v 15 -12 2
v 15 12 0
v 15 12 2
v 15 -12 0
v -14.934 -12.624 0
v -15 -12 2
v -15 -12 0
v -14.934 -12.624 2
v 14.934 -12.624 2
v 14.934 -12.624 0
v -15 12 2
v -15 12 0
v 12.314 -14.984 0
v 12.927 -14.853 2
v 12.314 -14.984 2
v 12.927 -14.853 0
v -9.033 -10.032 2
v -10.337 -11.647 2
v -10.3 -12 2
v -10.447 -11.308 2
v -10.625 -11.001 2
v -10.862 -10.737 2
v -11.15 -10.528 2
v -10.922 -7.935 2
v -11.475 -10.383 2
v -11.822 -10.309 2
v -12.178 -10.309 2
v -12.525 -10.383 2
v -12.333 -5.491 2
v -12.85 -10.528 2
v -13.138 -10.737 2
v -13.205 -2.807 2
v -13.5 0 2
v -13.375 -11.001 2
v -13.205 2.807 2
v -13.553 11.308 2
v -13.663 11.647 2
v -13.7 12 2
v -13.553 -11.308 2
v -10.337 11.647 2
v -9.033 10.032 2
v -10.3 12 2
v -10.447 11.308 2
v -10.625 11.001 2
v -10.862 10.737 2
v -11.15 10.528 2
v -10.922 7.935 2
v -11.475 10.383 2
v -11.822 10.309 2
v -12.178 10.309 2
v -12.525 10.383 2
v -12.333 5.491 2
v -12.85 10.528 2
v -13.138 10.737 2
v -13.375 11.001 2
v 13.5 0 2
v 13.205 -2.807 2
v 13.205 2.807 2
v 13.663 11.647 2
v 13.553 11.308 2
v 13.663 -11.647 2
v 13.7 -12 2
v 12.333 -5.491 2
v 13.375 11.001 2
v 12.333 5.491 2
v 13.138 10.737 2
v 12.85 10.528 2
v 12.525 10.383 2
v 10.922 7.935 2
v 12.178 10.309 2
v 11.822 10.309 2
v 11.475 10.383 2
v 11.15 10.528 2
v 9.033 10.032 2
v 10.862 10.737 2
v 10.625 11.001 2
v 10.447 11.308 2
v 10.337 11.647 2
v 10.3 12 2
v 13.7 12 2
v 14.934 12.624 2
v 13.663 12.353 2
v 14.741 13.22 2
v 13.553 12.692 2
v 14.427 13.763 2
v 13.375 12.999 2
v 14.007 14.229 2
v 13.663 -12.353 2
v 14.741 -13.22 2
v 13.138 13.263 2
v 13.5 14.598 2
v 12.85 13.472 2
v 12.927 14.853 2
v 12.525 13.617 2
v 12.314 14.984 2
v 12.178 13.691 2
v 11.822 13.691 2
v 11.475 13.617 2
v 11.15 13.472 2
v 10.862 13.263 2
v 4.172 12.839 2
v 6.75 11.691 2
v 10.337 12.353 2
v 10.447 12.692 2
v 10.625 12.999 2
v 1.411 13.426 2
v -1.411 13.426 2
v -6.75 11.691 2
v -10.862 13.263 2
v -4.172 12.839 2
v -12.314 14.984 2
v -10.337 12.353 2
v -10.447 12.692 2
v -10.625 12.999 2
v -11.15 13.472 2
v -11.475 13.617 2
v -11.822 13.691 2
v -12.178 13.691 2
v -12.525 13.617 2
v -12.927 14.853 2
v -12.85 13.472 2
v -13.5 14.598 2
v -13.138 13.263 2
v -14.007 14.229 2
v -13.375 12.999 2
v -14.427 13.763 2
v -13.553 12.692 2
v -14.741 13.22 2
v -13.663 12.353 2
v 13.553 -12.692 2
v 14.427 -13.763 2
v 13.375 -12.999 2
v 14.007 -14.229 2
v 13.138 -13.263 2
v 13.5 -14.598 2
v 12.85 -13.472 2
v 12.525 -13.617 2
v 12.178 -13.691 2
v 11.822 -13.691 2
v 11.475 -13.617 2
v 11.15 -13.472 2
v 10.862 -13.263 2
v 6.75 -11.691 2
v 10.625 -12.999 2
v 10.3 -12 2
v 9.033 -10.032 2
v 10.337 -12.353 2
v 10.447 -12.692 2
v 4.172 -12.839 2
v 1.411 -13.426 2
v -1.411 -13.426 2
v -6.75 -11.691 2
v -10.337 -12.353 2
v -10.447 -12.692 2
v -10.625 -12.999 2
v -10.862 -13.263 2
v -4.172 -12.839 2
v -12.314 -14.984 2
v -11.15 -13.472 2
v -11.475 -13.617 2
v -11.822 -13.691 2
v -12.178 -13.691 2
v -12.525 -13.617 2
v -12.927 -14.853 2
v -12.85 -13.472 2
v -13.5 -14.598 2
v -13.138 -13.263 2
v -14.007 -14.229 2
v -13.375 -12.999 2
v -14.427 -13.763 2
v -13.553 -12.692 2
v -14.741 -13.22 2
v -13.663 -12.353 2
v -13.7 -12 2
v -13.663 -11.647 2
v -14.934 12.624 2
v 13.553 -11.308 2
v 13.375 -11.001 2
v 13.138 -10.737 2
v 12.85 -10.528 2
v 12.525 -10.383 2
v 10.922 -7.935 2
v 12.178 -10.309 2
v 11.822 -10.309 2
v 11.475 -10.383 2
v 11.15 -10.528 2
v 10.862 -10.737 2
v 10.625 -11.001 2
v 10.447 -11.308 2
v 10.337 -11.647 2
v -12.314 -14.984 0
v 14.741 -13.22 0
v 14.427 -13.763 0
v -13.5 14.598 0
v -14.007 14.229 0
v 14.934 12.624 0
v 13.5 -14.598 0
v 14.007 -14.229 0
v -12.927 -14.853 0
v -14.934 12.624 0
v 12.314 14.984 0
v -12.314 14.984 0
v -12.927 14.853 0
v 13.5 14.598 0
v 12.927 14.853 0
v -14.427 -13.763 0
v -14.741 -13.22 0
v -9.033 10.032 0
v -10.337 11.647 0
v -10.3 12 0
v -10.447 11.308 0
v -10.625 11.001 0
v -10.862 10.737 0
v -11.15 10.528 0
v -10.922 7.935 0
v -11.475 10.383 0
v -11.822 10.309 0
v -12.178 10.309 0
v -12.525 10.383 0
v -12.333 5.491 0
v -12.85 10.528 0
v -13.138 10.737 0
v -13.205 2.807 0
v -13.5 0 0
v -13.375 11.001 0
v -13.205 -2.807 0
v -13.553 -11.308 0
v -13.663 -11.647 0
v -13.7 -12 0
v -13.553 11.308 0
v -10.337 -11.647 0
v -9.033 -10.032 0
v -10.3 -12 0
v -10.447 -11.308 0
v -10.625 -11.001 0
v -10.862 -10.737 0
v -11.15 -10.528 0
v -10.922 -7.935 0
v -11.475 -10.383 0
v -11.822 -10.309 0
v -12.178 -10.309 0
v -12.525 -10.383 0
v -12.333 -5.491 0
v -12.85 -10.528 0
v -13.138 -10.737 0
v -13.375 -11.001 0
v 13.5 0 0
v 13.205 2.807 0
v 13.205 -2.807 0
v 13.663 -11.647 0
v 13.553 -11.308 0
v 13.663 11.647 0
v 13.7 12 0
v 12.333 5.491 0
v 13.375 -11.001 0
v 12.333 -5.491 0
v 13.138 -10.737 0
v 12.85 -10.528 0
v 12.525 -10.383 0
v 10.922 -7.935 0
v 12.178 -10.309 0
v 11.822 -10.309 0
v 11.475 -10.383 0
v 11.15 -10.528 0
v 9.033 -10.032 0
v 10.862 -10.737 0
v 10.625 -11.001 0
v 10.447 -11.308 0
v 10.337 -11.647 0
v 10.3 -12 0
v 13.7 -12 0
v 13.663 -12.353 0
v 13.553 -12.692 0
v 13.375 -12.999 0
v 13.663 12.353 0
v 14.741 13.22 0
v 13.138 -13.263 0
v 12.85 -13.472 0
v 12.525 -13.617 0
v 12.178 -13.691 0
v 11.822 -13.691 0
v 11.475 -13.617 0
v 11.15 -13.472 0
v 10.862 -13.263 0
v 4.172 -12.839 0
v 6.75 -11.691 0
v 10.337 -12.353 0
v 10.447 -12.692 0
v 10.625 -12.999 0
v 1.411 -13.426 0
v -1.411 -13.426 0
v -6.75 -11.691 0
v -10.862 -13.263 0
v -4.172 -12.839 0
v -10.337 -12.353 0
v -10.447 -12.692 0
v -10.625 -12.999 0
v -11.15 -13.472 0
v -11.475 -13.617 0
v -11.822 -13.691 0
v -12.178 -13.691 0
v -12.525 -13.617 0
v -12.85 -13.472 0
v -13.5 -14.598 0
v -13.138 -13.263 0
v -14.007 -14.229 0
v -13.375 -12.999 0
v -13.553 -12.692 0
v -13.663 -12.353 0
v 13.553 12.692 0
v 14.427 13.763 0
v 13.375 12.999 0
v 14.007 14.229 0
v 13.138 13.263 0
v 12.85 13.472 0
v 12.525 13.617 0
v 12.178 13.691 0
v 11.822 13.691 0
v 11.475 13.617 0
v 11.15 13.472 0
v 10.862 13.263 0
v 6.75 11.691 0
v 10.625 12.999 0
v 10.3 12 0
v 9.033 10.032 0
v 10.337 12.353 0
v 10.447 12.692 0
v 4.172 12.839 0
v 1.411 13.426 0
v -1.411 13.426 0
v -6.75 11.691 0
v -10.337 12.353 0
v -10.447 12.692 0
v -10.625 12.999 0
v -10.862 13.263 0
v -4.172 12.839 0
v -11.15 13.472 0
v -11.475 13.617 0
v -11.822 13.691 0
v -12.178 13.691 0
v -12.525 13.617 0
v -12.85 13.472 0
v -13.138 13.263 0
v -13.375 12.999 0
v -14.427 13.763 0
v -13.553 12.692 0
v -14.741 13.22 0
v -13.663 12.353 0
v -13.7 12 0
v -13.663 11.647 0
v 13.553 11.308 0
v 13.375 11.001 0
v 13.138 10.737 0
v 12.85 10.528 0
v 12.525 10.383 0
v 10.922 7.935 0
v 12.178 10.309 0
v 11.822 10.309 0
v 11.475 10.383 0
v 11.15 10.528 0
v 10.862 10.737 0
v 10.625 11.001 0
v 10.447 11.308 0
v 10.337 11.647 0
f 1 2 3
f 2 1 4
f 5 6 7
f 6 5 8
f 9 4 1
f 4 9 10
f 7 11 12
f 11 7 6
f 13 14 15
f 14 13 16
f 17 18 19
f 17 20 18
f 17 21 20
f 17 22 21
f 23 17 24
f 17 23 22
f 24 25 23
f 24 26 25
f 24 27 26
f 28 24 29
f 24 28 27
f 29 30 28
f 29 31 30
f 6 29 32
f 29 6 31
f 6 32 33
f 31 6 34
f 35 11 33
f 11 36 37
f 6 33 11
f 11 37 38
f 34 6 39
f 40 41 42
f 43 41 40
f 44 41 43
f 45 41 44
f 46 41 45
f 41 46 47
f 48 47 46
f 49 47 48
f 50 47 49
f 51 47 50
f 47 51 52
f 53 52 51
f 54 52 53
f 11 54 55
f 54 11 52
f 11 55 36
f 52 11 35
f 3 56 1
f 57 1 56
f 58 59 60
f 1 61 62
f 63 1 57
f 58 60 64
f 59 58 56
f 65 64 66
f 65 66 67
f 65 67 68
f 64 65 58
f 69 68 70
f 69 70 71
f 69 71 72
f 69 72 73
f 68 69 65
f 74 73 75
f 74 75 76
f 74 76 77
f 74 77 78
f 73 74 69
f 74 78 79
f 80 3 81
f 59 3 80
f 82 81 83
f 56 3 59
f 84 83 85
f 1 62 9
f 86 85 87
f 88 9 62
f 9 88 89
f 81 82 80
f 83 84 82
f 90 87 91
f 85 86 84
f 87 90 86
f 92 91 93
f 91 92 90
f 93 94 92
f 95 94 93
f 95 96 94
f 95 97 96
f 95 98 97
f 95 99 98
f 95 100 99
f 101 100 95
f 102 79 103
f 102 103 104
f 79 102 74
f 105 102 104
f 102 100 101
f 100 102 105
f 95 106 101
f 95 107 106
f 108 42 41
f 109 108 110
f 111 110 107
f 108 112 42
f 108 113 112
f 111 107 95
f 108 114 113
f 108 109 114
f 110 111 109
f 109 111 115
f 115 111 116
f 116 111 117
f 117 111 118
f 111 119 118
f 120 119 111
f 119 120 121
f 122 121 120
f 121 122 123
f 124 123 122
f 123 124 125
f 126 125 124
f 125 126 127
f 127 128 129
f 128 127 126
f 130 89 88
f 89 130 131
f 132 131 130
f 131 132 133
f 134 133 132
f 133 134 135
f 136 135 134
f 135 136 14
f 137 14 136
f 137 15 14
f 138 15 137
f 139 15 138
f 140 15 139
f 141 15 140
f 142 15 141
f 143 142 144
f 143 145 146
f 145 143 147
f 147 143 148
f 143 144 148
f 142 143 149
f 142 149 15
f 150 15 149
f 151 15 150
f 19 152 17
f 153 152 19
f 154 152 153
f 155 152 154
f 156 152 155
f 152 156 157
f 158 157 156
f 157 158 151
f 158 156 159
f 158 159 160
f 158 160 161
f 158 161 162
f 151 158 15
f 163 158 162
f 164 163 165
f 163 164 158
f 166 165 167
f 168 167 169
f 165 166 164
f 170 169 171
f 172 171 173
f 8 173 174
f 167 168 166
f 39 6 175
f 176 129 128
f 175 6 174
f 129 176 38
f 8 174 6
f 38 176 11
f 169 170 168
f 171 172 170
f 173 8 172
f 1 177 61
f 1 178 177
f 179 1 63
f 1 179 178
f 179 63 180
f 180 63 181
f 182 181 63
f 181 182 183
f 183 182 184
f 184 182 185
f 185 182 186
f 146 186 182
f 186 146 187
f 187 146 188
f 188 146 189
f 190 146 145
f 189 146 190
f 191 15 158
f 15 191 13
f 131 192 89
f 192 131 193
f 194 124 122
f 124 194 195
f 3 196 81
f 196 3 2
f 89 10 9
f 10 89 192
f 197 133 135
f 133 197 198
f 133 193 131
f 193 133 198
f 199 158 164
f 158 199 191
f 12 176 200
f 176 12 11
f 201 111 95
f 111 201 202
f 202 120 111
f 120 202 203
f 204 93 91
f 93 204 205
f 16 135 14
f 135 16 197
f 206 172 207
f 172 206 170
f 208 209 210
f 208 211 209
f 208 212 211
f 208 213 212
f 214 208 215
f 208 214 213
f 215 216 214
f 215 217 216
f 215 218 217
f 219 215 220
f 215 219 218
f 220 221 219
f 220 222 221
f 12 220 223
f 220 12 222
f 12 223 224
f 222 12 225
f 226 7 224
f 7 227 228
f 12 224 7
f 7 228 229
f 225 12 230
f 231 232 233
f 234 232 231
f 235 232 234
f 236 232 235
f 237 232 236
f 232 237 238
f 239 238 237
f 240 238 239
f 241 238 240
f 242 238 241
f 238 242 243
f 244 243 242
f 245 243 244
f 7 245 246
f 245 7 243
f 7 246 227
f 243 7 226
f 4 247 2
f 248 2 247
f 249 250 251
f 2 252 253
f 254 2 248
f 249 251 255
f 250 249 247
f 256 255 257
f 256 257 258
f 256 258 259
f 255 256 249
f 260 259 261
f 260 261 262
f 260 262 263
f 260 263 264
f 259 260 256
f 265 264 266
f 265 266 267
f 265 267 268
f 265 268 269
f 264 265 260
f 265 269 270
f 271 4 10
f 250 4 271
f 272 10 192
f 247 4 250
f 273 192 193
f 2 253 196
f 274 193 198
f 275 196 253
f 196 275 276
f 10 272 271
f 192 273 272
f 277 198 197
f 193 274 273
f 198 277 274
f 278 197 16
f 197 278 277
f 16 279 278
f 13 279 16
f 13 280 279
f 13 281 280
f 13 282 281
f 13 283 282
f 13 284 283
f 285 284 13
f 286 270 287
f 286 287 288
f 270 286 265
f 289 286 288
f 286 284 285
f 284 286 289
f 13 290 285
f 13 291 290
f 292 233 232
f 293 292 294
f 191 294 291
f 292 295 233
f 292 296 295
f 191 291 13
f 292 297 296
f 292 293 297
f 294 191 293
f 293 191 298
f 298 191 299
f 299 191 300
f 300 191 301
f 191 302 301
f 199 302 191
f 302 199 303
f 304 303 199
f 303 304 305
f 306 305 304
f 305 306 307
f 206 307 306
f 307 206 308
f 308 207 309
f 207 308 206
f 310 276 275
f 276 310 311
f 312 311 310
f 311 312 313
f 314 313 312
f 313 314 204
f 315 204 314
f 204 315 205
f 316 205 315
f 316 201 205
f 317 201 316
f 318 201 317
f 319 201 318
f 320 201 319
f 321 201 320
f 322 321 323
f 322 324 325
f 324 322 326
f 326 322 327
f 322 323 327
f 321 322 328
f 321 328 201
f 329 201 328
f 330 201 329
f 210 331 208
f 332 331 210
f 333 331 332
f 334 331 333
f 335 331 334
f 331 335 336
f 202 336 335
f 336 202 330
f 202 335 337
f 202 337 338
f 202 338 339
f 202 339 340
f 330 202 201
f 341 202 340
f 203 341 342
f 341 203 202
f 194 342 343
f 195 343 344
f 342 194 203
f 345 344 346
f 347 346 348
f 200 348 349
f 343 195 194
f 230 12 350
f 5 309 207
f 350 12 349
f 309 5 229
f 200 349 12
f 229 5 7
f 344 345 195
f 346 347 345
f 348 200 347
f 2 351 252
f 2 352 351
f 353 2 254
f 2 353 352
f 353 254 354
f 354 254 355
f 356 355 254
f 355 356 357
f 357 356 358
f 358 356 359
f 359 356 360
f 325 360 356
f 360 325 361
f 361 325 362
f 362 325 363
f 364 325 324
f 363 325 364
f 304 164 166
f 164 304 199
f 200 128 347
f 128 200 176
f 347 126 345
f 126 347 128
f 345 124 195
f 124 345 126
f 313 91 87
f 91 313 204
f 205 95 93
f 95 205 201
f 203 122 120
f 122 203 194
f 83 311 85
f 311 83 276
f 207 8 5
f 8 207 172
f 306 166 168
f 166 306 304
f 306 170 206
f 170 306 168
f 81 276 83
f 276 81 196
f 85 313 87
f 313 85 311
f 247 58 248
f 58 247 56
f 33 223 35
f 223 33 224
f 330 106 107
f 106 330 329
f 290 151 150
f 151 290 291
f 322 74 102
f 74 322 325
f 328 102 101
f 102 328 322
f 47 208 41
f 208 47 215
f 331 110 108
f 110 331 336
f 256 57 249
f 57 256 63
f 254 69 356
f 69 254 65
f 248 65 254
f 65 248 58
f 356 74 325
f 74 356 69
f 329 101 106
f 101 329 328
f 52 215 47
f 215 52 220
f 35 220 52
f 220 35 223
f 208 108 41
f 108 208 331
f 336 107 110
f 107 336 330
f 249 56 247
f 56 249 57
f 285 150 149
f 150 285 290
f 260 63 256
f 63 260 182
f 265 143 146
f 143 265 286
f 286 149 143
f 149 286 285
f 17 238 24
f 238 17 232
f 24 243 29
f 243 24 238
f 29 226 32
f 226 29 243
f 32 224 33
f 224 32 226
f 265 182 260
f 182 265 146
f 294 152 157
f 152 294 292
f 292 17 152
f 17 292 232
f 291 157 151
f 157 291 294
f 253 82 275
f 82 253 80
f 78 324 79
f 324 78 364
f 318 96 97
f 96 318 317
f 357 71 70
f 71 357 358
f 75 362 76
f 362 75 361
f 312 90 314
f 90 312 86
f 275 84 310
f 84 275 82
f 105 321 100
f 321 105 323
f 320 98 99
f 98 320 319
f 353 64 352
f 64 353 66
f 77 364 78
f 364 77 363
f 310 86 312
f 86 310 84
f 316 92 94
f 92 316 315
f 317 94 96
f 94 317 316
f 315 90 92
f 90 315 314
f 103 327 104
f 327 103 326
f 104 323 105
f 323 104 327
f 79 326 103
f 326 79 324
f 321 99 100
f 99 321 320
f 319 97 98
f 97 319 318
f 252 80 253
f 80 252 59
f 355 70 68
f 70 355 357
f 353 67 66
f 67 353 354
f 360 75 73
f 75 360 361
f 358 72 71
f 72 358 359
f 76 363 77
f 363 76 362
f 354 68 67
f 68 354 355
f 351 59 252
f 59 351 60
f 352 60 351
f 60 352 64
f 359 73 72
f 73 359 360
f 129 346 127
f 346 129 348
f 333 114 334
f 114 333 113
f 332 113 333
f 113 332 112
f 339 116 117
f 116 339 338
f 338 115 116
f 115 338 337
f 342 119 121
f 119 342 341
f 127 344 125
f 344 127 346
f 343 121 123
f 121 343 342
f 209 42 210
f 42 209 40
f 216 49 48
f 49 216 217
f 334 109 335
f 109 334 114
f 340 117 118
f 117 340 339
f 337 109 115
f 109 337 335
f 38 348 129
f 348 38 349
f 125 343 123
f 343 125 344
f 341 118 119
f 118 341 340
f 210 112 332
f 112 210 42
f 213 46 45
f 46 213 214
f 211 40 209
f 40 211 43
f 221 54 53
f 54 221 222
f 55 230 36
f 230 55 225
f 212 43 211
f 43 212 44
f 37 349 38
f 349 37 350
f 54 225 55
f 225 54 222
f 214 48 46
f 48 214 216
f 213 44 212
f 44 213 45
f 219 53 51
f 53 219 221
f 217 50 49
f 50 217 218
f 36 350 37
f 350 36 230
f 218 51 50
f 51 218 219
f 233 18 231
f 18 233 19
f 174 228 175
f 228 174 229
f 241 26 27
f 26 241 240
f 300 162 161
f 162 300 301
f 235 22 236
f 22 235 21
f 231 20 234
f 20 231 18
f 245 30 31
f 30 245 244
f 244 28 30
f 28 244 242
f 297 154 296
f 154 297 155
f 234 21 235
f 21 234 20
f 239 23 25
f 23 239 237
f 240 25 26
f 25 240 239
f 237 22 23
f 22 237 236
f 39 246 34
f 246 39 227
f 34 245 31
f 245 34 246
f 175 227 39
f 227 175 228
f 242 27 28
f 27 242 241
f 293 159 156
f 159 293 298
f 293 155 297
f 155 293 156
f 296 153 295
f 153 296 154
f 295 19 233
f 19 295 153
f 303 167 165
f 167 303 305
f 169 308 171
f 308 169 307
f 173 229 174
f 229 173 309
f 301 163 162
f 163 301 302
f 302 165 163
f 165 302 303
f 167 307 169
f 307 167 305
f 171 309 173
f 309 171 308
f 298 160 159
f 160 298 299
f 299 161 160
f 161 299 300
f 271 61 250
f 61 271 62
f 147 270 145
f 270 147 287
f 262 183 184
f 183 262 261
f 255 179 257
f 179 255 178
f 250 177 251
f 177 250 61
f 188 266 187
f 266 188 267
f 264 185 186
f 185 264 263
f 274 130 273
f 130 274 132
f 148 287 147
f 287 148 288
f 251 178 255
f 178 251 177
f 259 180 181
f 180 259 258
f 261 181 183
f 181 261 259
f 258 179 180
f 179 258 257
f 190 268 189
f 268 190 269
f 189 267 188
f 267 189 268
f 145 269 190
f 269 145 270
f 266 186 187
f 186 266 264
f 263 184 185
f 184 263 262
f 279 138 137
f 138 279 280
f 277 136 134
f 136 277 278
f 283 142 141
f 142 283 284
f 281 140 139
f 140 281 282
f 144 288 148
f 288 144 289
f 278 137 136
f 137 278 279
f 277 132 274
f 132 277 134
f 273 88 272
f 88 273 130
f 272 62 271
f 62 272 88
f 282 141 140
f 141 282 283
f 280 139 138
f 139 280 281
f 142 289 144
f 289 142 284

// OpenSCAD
// A configurable fan size adapter
// Create by : Sherif Eid
// sherif.eid@gmail.com

// Here goes design variables, dimensions are in mm
t_wall = 2;      // wall thickness
d_fan1 = 30;     // fan 1 diameter
d_fan2 = 80;     // fan 2 diameter
angle_mani = 45; // manifold angle
d_screw = 3.4;   // M3 screw diameter

// other advanced variables
res_scale = 10;


// modules go here
module fanplate(diameter,screw_hole,thick) 
{
    difference()
    {
        difference()
        {
            difference()
            {
                difference()
                {
                    difference()
                        {
                        translate([diameter*0.1+diameter/-2,diameter*0.1+diameter/-2,0]) minkowski()
                        { 
                         cube([diameter-2*diameter*0.1,diameter-2*diameter*0.1,thick/2]);
                         cylinder(h=thick/2,r=diameter*0.1);
                        }
                        cylinder(thick,0.9*diameter/2,0.9*diameter/2);
                        }
                    translate([0.8*diameter/2,0.8*diameter/2,0]) cylinder(d=screw_hole,h=thick);
                }
                translate([-0.8*diameter/2,0.8*diameter/2,0]) cylinder(d=screw_hole,h=thick);
            }
            translate([-0.8*diameter/2,-0.8*diameter/2,0]) cylinder(d=screw_hole,h=thick);
        }
        translate([0.8*diameter/2,-0.8*diameter/2,0]) cylinder(d=screw_hole,h=thick);
    }
}



// body code goes here
scale(1/res_scale) fanplate(d_fan1*res_scale,d_screw*res_scale,t_wall*res_scale);
//fanplate(d_fan1,2,t_wall);
